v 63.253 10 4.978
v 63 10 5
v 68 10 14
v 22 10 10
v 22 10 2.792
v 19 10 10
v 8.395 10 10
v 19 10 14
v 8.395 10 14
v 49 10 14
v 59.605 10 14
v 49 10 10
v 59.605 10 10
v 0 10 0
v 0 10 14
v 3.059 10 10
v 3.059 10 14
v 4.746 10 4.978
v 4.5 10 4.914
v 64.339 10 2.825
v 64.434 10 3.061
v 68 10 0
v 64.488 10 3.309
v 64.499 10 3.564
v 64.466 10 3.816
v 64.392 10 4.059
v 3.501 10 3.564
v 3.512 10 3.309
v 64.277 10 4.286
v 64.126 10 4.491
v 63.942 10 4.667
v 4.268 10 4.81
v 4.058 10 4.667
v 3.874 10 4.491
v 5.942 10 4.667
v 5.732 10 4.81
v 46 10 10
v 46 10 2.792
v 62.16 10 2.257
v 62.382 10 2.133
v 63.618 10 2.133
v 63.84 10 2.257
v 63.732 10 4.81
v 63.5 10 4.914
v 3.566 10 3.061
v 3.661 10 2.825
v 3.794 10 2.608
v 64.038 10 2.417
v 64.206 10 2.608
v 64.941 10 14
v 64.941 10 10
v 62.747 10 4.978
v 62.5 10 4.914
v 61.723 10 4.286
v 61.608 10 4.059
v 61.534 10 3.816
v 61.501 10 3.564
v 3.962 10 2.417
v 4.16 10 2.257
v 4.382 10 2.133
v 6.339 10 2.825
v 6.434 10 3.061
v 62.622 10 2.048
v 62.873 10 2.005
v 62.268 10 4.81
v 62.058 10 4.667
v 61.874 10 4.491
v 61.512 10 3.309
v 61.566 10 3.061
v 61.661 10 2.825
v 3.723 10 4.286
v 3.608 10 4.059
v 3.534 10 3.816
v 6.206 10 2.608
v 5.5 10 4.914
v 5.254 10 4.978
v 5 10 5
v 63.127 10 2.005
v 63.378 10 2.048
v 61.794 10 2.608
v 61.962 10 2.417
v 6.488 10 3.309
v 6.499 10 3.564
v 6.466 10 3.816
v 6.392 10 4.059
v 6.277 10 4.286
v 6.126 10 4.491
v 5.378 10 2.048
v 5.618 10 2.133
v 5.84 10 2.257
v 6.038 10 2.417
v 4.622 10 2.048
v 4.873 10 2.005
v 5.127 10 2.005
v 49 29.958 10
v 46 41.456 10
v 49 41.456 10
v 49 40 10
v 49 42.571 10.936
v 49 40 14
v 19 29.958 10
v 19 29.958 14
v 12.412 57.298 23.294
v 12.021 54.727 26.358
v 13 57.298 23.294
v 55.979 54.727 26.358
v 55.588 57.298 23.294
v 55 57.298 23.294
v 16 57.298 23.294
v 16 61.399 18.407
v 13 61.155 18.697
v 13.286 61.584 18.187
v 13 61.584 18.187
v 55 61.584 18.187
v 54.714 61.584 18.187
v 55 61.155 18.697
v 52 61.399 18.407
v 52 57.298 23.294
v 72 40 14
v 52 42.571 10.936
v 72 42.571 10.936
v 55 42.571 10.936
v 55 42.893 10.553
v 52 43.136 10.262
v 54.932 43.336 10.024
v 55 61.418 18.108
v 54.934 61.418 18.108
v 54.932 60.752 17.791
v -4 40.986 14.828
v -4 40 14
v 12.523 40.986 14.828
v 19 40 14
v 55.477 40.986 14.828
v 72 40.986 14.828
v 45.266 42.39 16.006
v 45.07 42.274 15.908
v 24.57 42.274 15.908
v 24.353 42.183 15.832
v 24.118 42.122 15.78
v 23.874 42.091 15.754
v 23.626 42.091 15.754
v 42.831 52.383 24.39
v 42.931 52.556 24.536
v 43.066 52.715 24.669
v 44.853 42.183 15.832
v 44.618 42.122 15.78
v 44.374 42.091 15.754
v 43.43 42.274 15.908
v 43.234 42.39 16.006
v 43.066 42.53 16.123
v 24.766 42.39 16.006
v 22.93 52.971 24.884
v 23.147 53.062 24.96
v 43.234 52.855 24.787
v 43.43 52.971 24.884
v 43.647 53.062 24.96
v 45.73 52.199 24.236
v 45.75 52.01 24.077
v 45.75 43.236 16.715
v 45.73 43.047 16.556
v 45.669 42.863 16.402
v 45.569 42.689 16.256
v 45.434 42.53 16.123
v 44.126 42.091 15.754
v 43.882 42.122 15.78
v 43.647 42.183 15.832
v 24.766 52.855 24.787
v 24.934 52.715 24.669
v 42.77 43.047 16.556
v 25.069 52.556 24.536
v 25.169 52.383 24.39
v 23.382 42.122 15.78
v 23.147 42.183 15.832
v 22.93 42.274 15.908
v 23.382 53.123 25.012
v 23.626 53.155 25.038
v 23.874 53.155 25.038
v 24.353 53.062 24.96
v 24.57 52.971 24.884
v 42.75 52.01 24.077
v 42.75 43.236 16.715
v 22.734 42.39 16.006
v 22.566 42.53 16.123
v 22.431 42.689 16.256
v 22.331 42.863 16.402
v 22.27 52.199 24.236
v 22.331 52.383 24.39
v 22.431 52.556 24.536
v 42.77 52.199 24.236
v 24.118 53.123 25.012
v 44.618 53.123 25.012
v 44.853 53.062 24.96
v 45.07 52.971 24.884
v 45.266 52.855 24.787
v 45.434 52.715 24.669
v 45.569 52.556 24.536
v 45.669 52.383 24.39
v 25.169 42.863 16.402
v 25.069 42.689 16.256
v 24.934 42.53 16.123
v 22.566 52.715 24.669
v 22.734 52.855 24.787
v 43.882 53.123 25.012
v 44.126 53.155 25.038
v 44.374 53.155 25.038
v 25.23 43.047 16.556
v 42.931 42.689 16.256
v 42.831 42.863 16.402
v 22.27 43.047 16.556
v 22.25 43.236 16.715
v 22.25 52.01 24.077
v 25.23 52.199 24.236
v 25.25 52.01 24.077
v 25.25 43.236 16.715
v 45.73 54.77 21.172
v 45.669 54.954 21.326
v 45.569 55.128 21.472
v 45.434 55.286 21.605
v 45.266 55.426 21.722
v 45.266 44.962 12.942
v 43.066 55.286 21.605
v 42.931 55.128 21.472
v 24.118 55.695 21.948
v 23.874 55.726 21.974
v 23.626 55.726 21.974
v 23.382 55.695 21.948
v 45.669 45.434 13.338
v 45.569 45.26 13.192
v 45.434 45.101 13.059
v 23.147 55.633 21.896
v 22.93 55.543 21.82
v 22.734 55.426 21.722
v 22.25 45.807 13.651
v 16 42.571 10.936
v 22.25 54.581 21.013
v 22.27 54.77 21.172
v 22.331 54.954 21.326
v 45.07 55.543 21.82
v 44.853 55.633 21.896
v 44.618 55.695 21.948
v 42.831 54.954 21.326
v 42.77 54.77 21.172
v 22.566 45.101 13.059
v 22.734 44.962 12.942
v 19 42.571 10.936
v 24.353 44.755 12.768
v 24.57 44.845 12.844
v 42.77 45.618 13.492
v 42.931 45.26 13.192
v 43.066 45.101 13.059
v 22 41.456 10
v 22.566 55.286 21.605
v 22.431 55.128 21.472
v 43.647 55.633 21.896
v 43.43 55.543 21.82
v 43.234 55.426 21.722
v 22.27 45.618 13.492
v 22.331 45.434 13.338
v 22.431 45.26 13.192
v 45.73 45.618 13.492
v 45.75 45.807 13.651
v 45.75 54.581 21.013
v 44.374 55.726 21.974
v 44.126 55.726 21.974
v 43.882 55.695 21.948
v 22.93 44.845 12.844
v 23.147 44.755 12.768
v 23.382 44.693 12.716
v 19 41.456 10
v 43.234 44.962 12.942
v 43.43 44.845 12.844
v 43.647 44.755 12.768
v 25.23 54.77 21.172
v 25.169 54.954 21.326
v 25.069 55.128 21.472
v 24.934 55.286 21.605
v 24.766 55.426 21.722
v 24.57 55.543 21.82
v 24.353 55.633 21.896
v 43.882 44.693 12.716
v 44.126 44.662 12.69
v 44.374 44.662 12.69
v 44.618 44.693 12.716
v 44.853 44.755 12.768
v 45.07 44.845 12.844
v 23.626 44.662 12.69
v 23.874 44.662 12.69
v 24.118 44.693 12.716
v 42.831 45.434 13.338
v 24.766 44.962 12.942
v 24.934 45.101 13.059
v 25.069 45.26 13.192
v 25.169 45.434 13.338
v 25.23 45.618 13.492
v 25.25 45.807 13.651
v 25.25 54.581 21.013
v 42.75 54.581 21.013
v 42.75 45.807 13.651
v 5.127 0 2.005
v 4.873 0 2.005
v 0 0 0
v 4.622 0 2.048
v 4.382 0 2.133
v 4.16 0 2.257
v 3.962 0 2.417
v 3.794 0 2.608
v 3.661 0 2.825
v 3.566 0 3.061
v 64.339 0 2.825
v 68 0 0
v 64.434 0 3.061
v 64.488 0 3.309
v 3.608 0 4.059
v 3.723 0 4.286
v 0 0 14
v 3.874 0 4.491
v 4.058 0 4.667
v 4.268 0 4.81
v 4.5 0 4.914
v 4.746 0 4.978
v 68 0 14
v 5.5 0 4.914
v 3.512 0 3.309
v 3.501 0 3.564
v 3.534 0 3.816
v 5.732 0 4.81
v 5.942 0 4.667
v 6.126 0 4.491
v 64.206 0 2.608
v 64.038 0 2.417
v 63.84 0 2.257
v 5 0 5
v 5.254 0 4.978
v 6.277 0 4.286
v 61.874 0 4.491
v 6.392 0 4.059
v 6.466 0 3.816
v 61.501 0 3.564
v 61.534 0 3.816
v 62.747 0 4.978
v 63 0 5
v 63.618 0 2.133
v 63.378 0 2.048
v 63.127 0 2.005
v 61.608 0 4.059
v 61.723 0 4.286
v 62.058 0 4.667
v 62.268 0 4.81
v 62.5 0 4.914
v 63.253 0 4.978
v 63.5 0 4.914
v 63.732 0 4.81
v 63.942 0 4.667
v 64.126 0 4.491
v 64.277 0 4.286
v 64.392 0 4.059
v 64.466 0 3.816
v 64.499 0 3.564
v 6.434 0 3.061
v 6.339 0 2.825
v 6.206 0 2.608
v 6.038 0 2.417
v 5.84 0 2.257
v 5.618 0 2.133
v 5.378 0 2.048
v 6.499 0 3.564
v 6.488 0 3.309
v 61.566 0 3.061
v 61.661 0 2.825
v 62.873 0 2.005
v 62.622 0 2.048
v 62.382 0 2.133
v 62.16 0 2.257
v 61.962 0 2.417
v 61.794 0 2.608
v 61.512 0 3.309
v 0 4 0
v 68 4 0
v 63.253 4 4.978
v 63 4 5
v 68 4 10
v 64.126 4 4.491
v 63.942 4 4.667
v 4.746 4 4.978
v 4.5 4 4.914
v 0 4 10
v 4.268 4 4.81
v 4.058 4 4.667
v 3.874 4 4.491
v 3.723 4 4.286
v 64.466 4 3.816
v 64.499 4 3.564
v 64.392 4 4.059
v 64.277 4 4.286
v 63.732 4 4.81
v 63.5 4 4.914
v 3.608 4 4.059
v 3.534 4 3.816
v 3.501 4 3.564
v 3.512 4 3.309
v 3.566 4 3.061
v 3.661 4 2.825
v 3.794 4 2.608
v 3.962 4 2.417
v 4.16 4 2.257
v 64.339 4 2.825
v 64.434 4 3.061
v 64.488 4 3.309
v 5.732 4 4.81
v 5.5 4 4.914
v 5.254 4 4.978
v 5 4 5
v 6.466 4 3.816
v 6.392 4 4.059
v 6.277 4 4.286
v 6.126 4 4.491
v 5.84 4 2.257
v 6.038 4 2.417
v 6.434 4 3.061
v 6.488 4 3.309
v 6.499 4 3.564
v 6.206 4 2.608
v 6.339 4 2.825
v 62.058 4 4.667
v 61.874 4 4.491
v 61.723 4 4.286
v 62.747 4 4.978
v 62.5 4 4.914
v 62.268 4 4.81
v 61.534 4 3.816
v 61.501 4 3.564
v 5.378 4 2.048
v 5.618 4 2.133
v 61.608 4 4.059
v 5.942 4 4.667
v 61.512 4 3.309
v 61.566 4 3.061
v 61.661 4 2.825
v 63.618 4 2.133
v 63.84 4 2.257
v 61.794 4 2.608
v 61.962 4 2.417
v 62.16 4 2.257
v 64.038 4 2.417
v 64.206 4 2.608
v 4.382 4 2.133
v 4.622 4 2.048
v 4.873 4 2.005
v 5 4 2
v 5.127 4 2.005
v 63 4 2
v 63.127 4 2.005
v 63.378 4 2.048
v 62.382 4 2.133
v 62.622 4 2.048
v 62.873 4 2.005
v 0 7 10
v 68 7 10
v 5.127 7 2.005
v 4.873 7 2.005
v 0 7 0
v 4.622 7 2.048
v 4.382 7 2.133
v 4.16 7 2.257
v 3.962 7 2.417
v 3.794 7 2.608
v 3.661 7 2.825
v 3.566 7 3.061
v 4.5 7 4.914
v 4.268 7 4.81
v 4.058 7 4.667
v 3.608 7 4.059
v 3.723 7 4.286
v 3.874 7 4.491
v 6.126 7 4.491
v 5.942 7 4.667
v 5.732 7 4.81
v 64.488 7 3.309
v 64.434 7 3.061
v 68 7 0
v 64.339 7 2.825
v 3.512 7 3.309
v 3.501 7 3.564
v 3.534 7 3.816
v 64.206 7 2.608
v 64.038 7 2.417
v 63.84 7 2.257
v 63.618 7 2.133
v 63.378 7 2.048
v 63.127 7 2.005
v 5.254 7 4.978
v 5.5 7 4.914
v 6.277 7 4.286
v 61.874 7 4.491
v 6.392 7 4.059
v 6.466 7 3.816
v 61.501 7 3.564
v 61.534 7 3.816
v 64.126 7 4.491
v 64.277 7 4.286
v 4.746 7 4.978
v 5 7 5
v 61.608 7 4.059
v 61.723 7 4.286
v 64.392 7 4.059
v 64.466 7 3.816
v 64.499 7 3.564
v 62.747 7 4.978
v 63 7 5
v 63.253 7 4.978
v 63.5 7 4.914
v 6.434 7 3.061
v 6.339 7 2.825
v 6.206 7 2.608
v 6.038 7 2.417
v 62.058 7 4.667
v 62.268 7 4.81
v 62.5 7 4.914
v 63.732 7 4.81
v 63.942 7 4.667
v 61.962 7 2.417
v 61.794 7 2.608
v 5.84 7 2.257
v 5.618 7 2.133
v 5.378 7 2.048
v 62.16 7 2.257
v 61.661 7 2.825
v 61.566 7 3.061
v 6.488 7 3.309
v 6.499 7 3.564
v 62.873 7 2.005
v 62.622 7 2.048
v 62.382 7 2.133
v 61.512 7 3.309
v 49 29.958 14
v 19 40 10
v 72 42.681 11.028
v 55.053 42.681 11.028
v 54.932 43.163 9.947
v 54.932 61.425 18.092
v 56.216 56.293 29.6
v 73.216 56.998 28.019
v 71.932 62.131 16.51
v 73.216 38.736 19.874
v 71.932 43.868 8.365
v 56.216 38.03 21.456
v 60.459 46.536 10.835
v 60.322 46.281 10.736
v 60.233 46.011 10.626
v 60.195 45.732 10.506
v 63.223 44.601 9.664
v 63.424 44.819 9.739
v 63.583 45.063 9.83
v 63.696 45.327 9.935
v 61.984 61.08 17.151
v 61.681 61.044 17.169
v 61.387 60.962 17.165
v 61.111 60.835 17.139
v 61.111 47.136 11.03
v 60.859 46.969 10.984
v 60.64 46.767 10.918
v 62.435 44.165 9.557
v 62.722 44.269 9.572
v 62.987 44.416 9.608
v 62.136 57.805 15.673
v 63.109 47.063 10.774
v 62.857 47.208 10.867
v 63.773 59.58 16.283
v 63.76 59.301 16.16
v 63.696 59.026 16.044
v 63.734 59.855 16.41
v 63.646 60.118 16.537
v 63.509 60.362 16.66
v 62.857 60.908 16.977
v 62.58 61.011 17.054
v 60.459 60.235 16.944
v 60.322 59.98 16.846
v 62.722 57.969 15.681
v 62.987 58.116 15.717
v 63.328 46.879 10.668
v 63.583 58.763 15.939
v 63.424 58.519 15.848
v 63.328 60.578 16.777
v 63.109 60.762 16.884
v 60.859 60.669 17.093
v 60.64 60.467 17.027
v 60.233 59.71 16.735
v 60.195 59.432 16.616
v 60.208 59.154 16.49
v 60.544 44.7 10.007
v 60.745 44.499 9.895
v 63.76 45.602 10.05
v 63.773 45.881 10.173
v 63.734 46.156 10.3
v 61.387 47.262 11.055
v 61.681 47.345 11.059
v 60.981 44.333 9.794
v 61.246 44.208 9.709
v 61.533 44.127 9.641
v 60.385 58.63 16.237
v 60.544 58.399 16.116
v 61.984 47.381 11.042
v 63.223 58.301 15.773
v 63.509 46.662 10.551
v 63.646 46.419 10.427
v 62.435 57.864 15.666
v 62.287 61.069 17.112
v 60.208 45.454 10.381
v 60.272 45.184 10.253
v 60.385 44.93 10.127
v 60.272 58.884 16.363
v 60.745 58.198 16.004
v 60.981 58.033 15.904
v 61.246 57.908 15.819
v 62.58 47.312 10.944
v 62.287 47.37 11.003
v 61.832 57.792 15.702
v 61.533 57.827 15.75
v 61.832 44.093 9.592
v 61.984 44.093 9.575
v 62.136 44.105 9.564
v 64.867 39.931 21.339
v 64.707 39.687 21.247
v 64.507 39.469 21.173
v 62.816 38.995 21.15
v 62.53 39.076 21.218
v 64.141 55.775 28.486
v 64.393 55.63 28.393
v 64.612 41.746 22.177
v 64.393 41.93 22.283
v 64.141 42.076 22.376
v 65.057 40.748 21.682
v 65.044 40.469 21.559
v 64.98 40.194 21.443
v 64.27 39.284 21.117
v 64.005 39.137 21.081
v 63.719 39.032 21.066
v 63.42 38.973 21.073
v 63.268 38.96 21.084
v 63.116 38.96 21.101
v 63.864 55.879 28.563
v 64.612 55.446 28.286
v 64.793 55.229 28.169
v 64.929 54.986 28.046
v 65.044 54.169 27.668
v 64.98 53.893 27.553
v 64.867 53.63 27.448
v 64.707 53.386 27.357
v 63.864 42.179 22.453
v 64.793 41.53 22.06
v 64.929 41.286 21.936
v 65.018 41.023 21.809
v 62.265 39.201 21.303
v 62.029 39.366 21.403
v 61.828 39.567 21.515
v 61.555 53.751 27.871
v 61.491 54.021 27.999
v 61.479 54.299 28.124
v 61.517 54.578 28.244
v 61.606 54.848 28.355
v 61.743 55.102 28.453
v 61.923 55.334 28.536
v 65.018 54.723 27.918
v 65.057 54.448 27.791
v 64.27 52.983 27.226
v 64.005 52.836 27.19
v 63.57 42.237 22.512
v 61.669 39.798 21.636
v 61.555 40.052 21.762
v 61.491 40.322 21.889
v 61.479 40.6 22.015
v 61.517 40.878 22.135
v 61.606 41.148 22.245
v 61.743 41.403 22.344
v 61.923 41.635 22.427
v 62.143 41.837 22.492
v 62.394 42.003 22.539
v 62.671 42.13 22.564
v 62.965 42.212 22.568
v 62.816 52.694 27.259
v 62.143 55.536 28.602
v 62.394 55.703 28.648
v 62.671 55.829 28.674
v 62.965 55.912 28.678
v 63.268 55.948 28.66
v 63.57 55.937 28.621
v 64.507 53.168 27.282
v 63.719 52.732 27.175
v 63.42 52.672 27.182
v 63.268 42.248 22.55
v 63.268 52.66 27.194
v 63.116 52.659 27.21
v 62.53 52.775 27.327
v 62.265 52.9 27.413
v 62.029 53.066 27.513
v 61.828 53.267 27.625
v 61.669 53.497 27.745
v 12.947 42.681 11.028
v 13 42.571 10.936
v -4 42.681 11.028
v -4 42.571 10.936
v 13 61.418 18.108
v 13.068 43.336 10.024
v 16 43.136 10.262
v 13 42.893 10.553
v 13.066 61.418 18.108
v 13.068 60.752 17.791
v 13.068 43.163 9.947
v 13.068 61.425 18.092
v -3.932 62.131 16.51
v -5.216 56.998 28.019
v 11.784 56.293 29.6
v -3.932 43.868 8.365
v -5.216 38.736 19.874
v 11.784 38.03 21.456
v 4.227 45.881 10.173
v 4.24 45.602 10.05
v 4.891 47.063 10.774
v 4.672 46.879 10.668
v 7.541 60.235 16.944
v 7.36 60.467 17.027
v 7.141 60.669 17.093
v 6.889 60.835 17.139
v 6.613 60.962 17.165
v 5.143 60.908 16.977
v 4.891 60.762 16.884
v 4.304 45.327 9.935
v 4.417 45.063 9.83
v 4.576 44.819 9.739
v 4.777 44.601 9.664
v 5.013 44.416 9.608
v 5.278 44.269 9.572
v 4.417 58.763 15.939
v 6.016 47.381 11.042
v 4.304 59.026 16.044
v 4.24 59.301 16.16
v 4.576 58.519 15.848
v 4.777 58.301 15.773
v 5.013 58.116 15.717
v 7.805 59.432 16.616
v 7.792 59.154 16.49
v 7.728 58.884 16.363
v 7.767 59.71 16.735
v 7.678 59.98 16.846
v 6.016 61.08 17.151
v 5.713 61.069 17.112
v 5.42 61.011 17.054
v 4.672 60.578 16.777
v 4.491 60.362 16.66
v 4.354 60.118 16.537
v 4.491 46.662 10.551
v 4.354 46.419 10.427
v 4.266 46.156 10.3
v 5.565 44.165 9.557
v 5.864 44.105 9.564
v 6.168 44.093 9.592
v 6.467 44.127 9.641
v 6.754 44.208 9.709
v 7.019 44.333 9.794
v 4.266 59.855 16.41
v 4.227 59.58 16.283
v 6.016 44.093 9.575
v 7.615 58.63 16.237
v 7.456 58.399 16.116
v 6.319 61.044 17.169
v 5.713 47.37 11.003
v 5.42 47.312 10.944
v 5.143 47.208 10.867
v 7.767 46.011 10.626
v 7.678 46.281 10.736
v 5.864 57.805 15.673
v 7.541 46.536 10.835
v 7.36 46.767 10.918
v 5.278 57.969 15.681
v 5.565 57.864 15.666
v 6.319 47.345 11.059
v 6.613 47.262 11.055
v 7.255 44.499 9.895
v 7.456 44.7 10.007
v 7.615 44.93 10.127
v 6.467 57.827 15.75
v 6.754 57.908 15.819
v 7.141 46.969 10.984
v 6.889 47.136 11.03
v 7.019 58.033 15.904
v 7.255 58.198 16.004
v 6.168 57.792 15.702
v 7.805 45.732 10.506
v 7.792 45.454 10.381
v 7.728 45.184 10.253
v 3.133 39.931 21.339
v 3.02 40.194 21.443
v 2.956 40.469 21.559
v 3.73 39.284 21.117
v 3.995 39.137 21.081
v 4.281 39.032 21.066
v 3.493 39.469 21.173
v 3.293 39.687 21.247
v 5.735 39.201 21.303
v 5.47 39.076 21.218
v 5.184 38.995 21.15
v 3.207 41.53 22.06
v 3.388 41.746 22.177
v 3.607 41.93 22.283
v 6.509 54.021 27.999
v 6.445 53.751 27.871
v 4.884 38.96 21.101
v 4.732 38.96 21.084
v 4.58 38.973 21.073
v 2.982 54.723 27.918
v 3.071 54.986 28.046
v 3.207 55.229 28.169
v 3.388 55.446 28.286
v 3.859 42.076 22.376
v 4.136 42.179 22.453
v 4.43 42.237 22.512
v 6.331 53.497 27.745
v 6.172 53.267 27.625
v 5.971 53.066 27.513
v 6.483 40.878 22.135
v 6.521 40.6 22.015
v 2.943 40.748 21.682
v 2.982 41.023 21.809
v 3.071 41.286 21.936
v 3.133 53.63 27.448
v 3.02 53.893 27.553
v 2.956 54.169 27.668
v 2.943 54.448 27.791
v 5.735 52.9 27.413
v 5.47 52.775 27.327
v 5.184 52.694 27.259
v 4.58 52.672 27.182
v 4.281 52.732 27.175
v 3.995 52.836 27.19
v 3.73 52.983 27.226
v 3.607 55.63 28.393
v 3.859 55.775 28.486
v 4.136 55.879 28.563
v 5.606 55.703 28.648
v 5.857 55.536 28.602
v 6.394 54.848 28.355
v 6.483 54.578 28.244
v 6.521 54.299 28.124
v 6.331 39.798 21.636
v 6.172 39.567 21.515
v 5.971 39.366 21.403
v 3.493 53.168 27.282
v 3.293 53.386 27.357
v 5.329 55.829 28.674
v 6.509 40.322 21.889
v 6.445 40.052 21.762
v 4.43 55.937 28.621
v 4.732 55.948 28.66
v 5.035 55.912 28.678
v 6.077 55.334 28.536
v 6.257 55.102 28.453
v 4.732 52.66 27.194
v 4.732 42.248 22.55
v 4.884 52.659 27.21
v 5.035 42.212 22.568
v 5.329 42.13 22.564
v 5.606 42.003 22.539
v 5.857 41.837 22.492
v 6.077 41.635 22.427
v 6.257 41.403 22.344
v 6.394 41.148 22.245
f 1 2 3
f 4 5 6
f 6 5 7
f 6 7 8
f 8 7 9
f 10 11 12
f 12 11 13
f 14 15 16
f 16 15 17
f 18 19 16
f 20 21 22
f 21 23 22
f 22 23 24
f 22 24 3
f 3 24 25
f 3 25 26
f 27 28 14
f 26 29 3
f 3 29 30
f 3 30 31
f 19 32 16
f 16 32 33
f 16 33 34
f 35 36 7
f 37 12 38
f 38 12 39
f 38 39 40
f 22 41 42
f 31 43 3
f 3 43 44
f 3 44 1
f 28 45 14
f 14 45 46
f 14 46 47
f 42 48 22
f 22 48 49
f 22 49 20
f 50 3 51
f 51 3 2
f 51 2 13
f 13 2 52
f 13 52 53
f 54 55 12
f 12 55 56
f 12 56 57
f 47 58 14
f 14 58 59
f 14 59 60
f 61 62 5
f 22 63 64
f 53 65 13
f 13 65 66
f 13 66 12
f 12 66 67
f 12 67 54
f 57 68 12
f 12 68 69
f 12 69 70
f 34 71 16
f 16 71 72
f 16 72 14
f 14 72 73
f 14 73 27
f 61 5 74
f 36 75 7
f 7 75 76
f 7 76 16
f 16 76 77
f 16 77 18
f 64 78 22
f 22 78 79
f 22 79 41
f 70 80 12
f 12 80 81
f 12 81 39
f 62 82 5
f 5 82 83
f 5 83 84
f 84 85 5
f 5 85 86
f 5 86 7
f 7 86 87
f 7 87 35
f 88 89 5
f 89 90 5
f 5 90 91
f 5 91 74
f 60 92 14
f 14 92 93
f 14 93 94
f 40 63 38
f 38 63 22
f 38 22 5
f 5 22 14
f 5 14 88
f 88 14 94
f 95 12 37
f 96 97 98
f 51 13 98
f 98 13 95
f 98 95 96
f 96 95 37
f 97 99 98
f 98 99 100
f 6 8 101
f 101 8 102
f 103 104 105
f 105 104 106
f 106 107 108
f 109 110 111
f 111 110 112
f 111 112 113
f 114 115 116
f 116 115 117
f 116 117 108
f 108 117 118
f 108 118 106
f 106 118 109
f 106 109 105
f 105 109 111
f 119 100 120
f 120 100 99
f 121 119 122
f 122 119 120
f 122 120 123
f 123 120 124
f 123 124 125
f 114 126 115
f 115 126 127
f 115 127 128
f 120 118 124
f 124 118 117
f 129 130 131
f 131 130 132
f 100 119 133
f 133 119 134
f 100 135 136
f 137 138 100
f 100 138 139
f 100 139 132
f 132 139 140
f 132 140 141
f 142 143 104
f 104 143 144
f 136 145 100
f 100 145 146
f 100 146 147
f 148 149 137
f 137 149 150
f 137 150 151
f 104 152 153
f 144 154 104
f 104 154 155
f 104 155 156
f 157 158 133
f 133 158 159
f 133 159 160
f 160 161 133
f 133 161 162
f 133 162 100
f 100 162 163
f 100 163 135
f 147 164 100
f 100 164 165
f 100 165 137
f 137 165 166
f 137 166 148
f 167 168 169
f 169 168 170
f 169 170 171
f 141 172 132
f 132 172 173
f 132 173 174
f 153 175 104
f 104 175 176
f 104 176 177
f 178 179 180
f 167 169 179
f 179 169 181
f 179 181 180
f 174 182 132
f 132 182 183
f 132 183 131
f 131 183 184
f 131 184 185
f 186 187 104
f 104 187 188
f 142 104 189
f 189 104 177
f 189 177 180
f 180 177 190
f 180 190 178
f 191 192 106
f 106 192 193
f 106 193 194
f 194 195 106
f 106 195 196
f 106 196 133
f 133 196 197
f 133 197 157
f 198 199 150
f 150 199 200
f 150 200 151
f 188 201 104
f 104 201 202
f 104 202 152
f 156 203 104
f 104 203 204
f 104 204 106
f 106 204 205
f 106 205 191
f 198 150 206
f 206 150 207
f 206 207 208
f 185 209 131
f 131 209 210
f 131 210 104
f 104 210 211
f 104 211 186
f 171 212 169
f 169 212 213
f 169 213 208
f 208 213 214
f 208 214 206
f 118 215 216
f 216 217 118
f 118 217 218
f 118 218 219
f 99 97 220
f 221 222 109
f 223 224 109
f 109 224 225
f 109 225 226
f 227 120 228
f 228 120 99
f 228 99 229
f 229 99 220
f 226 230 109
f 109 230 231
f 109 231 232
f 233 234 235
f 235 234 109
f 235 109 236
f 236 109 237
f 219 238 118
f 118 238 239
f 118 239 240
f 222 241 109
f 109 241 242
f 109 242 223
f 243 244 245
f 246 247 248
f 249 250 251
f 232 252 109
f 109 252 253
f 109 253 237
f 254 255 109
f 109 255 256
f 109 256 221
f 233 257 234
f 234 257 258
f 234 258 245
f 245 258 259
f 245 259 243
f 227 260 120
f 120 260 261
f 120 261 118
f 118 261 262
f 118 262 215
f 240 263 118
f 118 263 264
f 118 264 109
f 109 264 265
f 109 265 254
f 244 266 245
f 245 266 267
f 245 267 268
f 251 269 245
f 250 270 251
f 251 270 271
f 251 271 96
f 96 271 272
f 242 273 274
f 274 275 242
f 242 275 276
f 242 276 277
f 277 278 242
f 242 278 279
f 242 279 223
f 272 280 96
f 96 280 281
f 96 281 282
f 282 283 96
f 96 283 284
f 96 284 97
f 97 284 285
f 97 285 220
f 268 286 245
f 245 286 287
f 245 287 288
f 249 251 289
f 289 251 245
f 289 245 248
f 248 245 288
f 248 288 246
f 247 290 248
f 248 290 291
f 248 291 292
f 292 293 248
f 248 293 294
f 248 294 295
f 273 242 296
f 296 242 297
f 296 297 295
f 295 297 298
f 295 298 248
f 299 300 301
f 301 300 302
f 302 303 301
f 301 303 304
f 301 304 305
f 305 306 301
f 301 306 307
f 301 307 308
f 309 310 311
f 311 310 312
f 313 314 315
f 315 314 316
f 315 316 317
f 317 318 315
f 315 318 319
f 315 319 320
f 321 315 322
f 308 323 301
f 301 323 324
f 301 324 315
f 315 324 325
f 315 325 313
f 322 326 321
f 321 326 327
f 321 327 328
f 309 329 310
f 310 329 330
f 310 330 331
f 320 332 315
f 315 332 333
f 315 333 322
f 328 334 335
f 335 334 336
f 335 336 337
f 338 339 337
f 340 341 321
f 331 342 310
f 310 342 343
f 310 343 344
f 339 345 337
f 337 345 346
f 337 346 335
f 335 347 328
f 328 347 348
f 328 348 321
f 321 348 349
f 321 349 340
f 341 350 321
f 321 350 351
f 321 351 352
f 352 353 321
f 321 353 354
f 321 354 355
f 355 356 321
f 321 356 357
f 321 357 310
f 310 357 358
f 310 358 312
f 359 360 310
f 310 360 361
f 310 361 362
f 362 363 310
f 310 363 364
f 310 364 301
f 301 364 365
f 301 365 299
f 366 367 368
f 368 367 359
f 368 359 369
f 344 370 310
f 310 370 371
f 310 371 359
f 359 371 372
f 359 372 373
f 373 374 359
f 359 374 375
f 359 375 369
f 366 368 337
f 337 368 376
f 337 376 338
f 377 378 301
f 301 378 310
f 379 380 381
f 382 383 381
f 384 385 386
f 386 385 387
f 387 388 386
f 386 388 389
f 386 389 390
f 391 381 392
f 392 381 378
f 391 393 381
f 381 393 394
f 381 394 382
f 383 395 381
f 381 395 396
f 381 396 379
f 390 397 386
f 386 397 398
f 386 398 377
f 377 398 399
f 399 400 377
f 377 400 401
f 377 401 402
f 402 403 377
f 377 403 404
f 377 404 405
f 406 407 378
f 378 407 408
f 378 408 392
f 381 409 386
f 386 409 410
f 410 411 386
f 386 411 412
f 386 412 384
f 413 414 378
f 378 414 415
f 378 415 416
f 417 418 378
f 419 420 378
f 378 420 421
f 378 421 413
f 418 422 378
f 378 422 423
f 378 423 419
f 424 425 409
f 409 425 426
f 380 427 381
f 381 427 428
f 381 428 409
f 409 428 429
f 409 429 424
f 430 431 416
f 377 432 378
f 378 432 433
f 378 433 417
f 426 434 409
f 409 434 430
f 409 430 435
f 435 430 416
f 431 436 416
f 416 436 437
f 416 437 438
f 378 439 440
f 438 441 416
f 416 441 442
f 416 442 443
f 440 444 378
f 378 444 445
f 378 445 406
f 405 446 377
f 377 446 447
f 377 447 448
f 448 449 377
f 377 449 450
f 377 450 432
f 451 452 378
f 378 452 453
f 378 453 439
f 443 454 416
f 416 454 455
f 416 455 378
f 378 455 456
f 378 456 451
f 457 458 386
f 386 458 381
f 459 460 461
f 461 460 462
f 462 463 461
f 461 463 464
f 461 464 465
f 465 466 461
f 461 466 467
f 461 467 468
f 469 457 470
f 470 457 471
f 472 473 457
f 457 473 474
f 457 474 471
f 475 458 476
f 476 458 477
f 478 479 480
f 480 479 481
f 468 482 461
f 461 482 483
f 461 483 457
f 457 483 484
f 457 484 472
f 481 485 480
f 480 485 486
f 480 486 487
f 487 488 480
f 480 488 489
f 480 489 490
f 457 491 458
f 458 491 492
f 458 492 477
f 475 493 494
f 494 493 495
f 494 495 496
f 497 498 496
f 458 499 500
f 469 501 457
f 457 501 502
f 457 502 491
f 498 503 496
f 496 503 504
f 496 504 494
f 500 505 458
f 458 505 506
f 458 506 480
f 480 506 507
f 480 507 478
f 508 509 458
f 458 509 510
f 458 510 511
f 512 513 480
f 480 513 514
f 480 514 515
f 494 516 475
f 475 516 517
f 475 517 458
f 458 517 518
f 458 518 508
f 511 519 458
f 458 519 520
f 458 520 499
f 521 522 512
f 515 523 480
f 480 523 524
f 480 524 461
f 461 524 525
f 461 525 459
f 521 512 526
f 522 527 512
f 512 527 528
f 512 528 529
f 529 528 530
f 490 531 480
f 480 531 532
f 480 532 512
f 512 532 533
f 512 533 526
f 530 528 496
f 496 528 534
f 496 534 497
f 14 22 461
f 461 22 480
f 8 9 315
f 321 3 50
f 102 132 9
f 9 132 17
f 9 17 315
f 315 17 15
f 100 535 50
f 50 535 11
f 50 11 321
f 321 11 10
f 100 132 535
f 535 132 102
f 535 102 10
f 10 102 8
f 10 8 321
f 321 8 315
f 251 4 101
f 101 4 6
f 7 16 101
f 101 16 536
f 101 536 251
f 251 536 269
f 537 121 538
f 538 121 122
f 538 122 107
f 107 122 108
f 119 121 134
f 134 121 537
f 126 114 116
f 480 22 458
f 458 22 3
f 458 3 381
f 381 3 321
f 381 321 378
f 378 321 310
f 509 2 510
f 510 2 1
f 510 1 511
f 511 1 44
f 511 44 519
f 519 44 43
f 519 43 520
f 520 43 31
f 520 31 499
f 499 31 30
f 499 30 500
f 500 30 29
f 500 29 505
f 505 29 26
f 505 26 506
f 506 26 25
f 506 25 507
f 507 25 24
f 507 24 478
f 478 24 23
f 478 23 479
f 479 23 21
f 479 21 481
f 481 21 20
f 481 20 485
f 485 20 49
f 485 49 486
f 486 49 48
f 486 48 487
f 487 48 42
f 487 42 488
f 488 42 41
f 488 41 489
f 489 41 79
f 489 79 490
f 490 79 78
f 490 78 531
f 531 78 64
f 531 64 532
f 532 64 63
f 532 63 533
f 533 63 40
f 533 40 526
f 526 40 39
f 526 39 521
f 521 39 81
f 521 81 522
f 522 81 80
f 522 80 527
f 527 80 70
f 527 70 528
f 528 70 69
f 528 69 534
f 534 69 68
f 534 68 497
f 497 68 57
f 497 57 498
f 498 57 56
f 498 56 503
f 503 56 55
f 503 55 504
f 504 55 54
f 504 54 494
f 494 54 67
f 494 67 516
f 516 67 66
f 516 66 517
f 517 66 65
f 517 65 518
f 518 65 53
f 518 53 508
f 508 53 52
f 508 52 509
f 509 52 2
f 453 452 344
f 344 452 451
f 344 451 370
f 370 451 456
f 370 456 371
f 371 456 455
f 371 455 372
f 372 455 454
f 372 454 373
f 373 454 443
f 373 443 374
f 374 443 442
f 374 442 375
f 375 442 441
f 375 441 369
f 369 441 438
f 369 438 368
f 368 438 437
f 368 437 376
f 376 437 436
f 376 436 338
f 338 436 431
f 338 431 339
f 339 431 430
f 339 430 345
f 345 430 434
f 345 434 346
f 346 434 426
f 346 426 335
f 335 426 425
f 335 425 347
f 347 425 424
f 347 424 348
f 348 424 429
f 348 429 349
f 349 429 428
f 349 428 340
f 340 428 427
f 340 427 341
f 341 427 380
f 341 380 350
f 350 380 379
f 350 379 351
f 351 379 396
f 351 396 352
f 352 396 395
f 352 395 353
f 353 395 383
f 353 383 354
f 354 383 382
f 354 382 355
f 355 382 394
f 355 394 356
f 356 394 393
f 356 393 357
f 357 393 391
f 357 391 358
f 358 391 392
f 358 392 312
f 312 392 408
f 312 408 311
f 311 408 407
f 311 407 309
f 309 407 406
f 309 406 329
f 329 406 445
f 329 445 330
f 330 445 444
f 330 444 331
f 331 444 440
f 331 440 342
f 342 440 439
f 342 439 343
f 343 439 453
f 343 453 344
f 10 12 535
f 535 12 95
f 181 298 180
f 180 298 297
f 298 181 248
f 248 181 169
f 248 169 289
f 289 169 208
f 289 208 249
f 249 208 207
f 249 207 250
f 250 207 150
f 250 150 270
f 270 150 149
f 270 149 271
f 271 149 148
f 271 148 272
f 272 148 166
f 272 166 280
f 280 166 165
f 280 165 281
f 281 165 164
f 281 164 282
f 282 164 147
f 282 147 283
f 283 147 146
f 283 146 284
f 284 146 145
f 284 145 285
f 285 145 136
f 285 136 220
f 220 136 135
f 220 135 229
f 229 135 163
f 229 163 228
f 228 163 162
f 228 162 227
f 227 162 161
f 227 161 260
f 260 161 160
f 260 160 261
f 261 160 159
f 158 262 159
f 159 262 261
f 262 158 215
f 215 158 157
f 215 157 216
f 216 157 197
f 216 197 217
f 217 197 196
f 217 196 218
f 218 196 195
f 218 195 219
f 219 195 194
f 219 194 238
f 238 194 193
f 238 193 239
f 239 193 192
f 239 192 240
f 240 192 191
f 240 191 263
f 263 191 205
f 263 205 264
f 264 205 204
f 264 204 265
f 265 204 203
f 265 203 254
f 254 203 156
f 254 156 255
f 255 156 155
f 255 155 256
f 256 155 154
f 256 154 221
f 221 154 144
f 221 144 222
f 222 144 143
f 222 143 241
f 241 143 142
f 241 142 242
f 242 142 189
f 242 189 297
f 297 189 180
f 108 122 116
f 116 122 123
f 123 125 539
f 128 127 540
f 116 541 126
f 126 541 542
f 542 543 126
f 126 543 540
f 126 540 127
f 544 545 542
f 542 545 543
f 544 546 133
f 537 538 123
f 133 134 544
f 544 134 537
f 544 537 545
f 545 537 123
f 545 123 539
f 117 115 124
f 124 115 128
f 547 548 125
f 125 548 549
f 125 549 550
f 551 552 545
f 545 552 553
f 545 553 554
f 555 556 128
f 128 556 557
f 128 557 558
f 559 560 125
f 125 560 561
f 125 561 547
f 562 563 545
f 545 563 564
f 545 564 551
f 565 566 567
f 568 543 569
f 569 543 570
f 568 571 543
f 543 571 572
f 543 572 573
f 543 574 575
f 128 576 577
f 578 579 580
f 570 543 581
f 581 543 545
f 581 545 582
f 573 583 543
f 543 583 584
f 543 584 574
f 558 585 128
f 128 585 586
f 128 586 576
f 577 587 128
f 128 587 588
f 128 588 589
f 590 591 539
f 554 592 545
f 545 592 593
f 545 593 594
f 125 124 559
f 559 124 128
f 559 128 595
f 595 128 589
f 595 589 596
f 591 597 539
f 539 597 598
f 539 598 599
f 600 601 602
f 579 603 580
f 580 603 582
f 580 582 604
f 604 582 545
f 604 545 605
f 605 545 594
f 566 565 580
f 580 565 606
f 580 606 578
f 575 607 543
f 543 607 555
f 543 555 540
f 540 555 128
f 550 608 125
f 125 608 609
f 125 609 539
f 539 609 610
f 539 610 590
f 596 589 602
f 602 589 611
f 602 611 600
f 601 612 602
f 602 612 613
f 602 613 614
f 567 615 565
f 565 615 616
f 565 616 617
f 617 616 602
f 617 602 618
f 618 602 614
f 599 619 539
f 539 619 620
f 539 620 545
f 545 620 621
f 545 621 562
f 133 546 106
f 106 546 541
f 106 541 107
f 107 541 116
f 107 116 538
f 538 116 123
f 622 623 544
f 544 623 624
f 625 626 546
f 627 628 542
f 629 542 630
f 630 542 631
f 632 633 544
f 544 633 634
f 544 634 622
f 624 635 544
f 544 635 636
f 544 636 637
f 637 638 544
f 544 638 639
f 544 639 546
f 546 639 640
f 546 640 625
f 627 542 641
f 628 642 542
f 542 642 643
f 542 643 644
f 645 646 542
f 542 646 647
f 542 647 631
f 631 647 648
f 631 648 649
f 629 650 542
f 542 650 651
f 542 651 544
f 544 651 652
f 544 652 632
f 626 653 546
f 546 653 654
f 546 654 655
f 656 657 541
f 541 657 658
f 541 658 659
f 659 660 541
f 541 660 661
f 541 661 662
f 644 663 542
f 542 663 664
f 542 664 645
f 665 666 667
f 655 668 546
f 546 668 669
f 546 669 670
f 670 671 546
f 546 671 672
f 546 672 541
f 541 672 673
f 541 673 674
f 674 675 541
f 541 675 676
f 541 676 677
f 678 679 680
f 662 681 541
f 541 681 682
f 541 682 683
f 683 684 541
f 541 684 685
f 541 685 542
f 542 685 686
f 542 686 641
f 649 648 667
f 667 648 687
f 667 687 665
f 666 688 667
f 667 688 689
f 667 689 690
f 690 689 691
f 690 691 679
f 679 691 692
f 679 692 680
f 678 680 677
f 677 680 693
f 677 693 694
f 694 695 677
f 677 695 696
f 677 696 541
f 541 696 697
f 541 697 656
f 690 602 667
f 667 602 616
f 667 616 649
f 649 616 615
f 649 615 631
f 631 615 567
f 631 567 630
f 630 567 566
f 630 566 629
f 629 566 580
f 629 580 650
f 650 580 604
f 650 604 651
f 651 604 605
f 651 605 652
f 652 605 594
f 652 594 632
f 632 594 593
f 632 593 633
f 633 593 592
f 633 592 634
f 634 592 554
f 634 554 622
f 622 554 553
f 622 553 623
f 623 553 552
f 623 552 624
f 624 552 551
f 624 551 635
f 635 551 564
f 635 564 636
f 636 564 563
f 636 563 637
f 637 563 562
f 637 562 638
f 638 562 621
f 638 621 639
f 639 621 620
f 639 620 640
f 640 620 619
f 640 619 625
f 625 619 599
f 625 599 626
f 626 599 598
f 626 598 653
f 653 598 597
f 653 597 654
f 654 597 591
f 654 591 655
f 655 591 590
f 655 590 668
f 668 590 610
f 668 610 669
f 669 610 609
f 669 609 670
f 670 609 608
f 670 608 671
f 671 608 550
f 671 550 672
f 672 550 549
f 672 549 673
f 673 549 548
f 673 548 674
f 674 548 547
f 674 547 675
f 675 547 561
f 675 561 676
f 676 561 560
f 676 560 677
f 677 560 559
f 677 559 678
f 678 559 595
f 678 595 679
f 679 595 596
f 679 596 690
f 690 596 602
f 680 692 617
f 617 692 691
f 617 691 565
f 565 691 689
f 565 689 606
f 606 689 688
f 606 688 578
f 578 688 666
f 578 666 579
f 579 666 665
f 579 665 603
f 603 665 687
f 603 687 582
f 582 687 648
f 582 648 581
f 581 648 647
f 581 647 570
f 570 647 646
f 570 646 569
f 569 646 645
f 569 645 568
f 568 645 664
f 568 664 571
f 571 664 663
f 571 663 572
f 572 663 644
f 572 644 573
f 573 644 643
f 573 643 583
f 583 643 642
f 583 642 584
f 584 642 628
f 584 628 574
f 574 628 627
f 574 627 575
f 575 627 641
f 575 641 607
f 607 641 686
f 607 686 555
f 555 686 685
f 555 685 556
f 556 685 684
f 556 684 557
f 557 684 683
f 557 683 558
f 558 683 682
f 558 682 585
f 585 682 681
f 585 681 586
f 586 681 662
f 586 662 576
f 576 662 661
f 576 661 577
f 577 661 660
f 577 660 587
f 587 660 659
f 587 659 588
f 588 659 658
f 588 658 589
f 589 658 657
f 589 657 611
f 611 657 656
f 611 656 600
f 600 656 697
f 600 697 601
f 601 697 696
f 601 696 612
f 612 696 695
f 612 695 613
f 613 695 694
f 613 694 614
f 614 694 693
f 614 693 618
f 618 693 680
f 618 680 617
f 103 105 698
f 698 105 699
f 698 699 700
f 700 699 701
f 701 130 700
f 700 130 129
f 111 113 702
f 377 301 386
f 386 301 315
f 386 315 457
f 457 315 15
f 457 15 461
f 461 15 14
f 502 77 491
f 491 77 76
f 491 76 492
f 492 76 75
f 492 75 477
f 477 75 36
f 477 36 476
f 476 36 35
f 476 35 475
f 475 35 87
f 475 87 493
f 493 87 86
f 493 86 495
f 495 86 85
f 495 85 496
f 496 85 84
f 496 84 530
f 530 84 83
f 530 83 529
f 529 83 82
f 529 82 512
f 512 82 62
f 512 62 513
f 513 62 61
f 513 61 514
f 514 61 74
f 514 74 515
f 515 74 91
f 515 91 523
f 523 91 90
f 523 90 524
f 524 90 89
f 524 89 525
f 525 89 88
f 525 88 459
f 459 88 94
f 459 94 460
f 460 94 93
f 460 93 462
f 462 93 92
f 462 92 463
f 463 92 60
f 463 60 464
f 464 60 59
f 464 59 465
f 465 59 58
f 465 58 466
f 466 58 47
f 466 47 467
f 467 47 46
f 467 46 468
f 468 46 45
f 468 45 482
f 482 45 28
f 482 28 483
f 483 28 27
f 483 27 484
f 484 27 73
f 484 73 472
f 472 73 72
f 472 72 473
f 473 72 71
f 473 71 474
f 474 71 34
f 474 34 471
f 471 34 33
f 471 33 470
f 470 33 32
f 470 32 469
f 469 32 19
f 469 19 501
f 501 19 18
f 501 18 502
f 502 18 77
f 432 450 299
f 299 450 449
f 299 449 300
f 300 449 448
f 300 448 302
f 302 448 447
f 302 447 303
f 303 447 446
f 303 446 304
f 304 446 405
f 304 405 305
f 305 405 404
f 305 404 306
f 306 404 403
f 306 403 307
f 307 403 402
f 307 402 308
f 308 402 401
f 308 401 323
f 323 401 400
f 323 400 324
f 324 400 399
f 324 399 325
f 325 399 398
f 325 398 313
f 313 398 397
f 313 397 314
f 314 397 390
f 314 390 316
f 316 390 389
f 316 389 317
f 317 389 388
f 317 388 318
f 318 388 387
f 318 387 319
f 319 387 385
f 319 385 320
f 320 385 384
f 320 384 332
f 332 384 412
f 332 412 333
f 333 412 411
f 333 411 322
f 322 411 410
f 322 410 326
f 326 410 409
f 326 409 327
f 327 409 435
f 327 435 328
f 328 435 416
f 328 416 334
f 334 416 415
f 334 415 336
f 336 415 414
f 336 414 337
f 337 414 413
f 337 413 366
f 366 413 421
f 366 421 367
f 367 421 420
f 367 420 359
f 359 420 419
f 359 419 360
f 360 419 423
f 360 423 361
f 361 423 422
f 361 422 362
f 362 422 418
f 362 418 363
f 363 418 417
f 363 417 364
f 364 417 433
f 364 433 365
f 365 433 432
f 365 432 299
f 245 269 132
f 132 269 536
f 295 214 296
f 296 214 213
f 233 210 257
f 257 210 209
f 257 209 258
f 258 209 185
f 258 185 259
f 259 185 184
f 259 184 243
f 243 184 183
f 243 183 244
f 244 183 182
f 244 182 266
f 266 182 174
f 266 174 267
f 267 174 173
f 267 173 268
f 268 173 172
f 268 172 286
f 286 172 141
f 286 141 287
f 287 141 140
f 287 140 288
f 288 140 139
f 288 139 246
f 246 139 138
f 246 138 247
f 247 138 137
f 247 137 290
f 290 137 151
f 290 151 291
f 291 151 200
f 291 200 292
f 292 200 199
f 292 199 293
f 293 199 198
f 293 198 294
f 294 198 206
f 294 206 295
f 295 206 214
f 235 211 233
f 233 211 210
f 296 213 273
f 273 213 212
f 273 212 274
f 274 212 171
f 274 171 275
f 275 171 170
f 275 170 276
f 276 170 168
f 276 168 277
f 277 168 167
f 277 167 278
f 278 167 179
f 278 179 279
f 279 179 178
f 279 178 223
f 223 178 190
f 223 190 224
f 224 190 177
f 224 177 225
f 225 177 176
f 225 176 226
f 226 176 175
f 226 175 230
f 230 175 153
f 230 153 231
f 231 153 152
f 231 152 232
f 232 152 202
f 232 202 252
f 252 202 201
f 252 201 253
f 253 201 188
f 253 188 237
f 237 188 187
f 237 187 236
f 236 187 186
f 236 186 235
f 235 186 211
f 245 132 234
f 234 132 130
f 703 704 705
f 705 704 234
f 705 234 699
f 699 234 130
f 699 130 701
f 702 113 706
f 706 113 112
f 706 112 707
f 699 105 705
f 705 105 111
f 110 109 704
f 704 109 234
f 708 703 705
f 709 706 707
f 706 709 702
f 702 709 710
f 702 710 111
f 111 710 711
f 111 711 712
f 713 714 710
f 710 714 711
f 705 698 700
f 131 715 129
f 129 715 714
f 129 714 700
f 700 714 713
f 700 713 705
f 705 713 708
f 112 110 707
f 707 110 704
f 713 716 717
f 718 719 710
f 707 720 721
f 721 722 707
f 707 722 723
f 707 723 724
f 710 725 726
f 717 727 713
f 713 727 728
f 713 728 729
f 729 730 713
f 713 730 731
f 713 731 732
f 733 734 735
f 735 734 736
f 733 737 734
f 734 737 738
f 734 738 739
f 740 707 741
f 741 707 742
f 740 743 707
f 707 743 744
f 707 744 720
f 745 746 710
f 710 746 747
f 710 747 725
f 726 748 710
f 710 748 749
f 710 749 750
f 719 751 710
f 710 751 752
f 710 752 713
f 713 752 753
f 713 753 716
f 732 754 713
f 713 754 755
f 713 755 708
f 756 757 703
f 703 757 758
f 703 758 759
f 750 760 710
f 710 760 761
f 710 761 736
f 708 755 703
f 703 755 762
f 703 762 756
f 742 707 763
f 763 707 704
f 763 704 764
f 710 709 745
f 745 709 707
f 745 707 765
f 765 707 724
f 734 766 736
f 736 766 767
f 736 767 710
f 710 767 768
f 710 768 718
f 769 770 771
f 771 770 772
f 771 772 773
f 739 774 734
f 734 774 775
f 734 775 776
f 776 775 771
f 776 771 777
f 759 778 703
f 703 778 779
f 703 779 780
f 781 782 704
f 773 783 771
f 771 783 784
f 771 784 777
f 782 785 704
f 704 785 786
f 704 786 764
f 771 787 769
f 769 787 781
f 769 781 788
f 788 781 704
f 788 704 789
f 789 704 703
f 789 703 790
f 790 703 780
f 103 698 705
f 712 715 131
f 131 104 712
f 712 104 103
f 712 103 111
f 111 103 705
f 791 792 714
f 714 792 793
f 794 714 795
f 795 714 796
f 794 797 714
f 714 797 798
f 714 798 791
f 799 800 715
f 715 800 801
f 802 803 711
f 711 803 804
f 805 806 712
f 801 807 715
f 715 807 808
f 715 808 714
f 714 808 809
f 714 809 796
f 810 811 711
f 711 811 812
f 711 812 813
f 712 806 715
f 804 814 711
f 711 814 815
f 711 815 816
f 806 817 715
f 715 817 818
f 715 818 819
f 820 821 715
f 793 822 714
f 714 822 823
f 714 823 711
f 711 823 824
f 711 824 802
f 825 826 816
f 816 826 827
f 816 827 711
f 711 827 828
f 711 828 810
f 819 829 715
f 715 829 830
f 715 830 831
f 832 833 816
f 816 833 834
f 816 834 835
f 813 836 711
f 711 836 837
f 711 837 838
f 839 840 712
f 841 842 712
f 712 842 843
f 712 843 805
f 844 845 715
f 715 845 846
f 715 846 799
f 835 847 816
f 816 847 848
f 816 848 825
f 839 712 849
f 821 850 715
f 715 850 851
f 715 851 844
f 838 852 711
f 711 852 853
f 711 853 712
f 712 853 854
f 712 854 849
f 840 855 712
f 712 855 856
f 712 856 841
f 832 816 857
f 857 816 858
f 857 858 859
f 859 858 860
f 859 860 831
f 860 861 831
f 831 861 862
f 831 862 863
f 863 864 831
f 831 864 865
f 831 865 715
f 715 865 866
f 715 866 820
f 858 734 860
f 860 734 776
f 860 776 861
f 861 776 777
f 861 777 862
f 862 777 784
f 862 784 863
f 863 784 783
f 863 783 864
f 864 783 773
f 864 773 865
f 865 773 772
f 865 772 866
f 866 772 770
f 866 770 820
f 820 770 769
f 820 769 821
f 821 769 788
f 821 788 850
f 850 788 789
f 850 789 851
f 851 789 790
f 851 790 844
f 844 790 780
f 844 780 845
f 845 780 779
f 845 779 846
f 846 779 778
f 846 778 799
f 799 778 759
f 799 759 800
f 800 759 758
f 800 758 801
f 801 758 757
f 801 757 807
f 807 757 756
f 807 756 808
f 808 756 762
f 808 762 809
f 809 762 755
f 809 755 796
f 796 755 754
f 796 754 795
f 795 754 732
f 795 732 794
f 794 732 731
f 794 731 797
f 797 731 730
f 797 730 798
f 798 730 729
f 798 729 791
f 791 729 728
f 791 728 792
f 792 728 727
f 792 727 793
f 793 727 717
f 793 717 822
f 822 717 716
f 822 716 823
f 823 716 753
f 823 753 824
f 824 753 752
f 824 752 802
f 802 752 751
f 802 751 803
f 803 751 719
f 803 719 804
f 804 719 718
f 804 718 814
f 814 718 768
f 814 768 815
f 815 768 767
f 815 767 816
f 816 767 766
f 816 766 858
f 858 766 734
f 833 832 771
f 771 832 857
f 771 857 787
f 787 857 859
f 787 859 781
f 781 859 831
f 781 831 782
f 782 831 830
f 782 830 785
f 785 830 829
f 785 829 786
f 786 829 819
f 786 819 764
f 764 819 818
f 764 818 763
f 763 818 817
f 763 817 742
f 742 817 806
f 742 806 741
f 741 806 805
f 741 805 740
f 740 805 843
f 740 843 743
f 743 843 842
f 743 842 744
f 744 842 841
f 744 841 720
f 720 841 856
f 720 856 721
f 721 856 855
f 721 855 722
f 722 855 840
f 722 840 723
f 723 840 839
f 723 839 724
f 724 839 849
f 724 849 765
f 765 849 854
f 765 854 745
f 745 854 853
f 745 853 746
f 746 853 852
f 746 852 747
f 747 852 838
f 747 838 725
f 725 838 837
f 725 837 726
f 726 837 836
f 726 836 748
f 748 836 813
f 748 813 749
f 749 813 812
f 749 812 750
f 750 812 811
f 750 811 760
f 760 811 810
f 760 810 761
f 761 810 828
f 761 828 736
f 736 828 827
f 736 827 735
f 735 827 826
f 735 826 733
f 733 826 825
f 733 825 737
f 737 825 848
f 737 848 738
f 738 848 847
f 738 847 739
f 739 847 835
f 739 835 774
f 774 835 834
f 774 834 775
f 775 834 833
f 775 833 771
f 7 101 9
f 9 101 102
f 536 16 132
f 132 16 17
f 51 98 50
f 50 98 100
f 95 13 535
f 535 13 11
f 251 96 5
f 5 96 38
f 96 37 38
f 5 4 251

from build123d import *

# Parameters (mm, degrees)
EXTRUDE_1_DEPTH       = 68
SKETCH_2_R            = 1.5
CUT_EXTRUDE_1_DEPTH   = 60
SKETCH_3_W            = 30
SKETCH_3_H            = 4
EXTRUDE_2_DEPTH       = 40
EXTRUDE_3_DEPTH       = 30
CUT_EXTRUDE_2_DEPTH   = 4
EXTRUDE_4_DEPTH       = 23
EXTRUDE_START         = -53
EXTRUDE_5_DEPTH       = 23
EXTRUDE_6_DEPTH       = 3
EXTRUDE_7_DEPTH       = 0.66666
SKETCH_17_W           = 17.087989765
SKETCH_17_H           = 19.996406133
EXTRUDE_9_DEPTH       = 12
SKETCH_19_R           = 1.8
CUT_EXTRUDE_3_DEPTH   = 20
SKETCH_20_W           = 61.603006609
SKETCH_20_H           = 84.586869481
CUT_EXTRUDE_4_DEPTH   = 65
SKETCH_21_W           = 7.494214953
SKETCH_21_H           = 26.873102225
CUT_EXTRUDE_5_DEPTH   = 2
SKETCH_22_W           = 9.970658679
SKETCH_22_H           = 25.794738871
CUT_EXTRUDE_6_DEPTH   = 2
EXTRUDE_10_DEPTH      = 4
EXTRUDE_11_DEPTH      = 12
EXTRUDE_11_DEPTH_BACK = 12


with BuildPart() as part:
    # 草图1 → 凸台-拉伸1 (new body)
    with BuildSketch(Plane(origin=(0, 0, 0), x_dir=(0, 0, -1), z_dir=(1, 0, 0))):
        Polygon((0, 0), (0, 4), (-10, 4), (-10, 7), (0, 7), (0, 10), (-14, 10), (-14, 0), align=None)
    extrude(amount=EXTRUDE_1_DEPTH)

    # 草图2 → 切除-拉伸1 (cut)
    with BuildSketch(Plane(origin=(0, 10, 0), x_dir=(1, 0, 0), z_dir=(0, 1, 0))):
        with Locations(Location((5, -3.5, 0), (0, 0, 270))):
            Circle(SKETCH_2_R)
        with Locations(Location((63, -3.5, 0), (0, 0, 270))):
            Circle(SKETCH_2_R)
    extrude(amount=-CUT_EXTRUDE_1_DEPTH, mode=Mode.SUBTRACT)

    # 草图3 → 凸台-拉伸2 (add)
    with BuildSketch(Plane.XZ):
        with Locations((34, 12)):
            Rectangle(SKETCH_3_W, SKETCH_3_H)
    extrude(amount=-EXTRUDE_2_DEPTH)

    # 草图4 → 凸台-拉伸3 (add)
    with BuildSketch(Plane(origin=(49, 0, 0), x_dir=(0, 0, -1), z_dir=(1, 0, 0))):
        Polygon((-14, 40), (-26.357684131, 54.727314459), (-23.293506358, 57.298464898), (-10, 41.455880937), (-10, 40), align=None)
    extrude(amount=-EXTRUDE_3_DEPTH)

    # 草图5 → 切除-拉伸2 (cut)
    with BuildSketch(Plane(origin=(0, 9.633382176, -11.480617817), x_dir=(1, 0, 0), z_dir=(0, -0.6427876096865429, 0.7660444431189751))):
        with BuildLine():
            Line((25.25, 55.318123989), (25.25, 43.864814933))
            ThreePointArc((25.25, 43.864814933), (23.75, 42.364814933), (22.25, 43.864814933))
            Line((22.25, 43.864814933), (22.25, 55.318123989))
            ThreePointArc((22.25, 55.318123989), (23.75, 56.818123989), (25.25, 55.318123989))
        make_face()
        with BuildLine():
            Line((42.75, 55.318123989), (42.75, 43.864814933))
            ThreePointArc((42.75, 43.864814933), (44.25, 42.364814933), (45.75, 43.864814933))
            Line((45.75, 43.864814933), (45.75, 55.318123989))
            ThreePointArc((45.75, 55.318123989), (44.25, 56.818123989), (42.75, 55.318123989))
        make_face()
    extrude(amount=-CUT_EXTRUDE_2_DEPTH, mode=Mode.SUBTRACT)

    # 草图6 → 凸台-拉伸4 (add)
    with BuildSketch(Plane.ZY.offset(-19)):
        Polygon((23.293506358, 57.298464898), (26.357684131, 54.727314459), (14, 40), (10.935822228, 42.571150439), align=None)
    extrude(amount=EXTRUDE_4_DEPTH)

    # 草图7 → 凸台-拉伸5 (add)
    with BuildSketch(Plane.ZY.offset(4).offset(EXTRUDE_START)):
        Polygon((23.293506358, 57.298464898), (26.357684131, 54.727314459), (14, 40), (10.935822228, 42.571150439), align=None)
    extrude(amount=-EXTRUDE_5_DEPTH)

    # 草图10 → 凸台-拉伸6 (add)
    with BuildSketch(Plane(origin=(52, 0, 0), x_dir=(0, 0.7660444431189749, 0.6427876096865431), z_dir=(-1, 0, 0))):
        Polygon((39.64080426, 18.986882184), (58.865947907, 18.986882184), (58.865947907, 25.653542184), (39.64080426, 20.653542184), align=None)
    extrude(amount=-EXTRUDE_6_DEPTH)

    # 草图15 → 凸台-拉伸7 (add)
    with BuildSketch(Plane(origin=(-0.224740323, 0.898508111, -2.01476807), x_dir=(0.9948507831271028, 0.04127952147527669, -0.09256306184522162), z_dir=(0.10135047760810084, -0.4051975406133526, 0.9085939873064868))):
        Polygon((55.510576319, 63.468125115), (55.510576319, 62.353864223), (55.510576319, 43.471718982), (72.598566084, 43.471718982), (72.598566084, 62.353864223), (72.598566084, 63.468125115), align=None)
    extrude(amount=-EXTRUDE_7_DEPTH)

    # 草图17 → 凸台-拉伸9 (add)
    with BuildSketch(Plane(origin=(-0.224740323, 0.898508111, -2.01476807), x_dir=(0.994850783127103, 0.04127952147527699, -0.09256306184522194), z_dir=(0.10135047760810126, -0.40519754061335256, 0.9085939873064869))):
        with Locations((64.054571201, 53.469922049)):
            Rectangle(SKETCH_17_W, SKETCH_17_H)
    extrude(amount=EXTRUDE_9_DEPTH)

    # 草图19 → 切除-拉伸3 (cut)
    with BuildSketch(Plane(origin=(-0.292306632, 1.168637103, -2.620491338), x_dir=(-0.9948507831271028, -0.04127952147527692, 0.09256306184522202), z_dir=(-0.10135047760810131, 0.40519754061335245, -0.908593987306487))):
        with Locations(Location((-62.598566084, 60.969922048, 0), (0, 0, 90))):
            Circle(SKETCH_19_R)
        with Locations(Location((-62.598566084, 45.969922048, 0), (0, 0, 270))):
            Circle(SKETCH_19_R)
    extrude(amount=-CUT_EXTRUDE_3_DEPTH, mode=Mode.SUBTRACT)

    # 草图20 → 切除-拉伸4 (cut)
    with BuildSketch(Plane.ZY.offset(-34)):
        with Locations((16.944749698, 32.191708304)):
            Rectangle(SKETCH_20_W, SKETCH_20_H)
    extrude(amount=CUT_EXTRUDE_4_DEPTH, mode=Mode.SUBTRACT)

    # 镜向7: part across plane


with BuildPart() as part_1:
    add(part.part)
    add(part.part.mirror(Plane.ZY.offset(-34)))

    # 草图21 → 切除-拉伸5 (cut)
    with BuildSketch(Plane(origin=(-0.292306632, 1.168637103, -2.620491338), x_dir=(-0.9948507831271028, -0.04127952147527692, 0.09256306184522202), z_dir=(-0.10135047760810131, 0.40519754061335245, -0.908593987306487))):
        with Locations((-54.514442647, 53.802326892)):
            Rectangle(SKETCH_21_W, SKETCH_21_H)
    extrude(amount=CUT_EXTRUDE_5_DEPTH, mode=Mode.SUBTRACT)

    # 草图22 → 切除-拉伸6 (cut)
    with BuildSketch(Plane(origin=(0.990797146, 3.961190673, -8.882368888), x_dir=(-0.9948507831271028, 0.04127952147527693, -0.09256306184522203), z_dir=(0.10135047760810131, 0.40519754061335256, -0.9085939873064868))):
        with Locations((-12.026553315, 54.032339334)):
            Rectangle(SKETCH_22_W, SKETCH_22_H)
    extrude(amount=CUT_EXTRUDE_6_DEPTH, mode=Mode.SUBTRACT)

    # 草图24 → 凸台-拉伸10 (add)
    with BuildSketch(Plane.XY.offset(14)):
        Polygon((19, 40), (3.059166743, 10), (8.395226669, 10), (19, 29.957752195), align=None)
        Polygon((49, 40), (64.940833257, 10), (59.604773331, 10), (49, 29.957752195), align=None)
    extrude(amount=-EXTRUDE_10_DEPTH)

    # 草图29 → 凸台-拉伸11 (add, two sides: drawn at the far end of the back side and taken through both)
    with BuildSketch(Plane.ZY.offset(-34).offset(-EXTRUDE_11_DEPTH_BACK)):
        Polygon((10, 10), (2.792361366, 10), (10, 41.455880937), align=None)
    extrude(amount=EXTRUDE_11_DEPTH + EXTRUDE_11_DEPTH_BACK)


solid = part_1.part
